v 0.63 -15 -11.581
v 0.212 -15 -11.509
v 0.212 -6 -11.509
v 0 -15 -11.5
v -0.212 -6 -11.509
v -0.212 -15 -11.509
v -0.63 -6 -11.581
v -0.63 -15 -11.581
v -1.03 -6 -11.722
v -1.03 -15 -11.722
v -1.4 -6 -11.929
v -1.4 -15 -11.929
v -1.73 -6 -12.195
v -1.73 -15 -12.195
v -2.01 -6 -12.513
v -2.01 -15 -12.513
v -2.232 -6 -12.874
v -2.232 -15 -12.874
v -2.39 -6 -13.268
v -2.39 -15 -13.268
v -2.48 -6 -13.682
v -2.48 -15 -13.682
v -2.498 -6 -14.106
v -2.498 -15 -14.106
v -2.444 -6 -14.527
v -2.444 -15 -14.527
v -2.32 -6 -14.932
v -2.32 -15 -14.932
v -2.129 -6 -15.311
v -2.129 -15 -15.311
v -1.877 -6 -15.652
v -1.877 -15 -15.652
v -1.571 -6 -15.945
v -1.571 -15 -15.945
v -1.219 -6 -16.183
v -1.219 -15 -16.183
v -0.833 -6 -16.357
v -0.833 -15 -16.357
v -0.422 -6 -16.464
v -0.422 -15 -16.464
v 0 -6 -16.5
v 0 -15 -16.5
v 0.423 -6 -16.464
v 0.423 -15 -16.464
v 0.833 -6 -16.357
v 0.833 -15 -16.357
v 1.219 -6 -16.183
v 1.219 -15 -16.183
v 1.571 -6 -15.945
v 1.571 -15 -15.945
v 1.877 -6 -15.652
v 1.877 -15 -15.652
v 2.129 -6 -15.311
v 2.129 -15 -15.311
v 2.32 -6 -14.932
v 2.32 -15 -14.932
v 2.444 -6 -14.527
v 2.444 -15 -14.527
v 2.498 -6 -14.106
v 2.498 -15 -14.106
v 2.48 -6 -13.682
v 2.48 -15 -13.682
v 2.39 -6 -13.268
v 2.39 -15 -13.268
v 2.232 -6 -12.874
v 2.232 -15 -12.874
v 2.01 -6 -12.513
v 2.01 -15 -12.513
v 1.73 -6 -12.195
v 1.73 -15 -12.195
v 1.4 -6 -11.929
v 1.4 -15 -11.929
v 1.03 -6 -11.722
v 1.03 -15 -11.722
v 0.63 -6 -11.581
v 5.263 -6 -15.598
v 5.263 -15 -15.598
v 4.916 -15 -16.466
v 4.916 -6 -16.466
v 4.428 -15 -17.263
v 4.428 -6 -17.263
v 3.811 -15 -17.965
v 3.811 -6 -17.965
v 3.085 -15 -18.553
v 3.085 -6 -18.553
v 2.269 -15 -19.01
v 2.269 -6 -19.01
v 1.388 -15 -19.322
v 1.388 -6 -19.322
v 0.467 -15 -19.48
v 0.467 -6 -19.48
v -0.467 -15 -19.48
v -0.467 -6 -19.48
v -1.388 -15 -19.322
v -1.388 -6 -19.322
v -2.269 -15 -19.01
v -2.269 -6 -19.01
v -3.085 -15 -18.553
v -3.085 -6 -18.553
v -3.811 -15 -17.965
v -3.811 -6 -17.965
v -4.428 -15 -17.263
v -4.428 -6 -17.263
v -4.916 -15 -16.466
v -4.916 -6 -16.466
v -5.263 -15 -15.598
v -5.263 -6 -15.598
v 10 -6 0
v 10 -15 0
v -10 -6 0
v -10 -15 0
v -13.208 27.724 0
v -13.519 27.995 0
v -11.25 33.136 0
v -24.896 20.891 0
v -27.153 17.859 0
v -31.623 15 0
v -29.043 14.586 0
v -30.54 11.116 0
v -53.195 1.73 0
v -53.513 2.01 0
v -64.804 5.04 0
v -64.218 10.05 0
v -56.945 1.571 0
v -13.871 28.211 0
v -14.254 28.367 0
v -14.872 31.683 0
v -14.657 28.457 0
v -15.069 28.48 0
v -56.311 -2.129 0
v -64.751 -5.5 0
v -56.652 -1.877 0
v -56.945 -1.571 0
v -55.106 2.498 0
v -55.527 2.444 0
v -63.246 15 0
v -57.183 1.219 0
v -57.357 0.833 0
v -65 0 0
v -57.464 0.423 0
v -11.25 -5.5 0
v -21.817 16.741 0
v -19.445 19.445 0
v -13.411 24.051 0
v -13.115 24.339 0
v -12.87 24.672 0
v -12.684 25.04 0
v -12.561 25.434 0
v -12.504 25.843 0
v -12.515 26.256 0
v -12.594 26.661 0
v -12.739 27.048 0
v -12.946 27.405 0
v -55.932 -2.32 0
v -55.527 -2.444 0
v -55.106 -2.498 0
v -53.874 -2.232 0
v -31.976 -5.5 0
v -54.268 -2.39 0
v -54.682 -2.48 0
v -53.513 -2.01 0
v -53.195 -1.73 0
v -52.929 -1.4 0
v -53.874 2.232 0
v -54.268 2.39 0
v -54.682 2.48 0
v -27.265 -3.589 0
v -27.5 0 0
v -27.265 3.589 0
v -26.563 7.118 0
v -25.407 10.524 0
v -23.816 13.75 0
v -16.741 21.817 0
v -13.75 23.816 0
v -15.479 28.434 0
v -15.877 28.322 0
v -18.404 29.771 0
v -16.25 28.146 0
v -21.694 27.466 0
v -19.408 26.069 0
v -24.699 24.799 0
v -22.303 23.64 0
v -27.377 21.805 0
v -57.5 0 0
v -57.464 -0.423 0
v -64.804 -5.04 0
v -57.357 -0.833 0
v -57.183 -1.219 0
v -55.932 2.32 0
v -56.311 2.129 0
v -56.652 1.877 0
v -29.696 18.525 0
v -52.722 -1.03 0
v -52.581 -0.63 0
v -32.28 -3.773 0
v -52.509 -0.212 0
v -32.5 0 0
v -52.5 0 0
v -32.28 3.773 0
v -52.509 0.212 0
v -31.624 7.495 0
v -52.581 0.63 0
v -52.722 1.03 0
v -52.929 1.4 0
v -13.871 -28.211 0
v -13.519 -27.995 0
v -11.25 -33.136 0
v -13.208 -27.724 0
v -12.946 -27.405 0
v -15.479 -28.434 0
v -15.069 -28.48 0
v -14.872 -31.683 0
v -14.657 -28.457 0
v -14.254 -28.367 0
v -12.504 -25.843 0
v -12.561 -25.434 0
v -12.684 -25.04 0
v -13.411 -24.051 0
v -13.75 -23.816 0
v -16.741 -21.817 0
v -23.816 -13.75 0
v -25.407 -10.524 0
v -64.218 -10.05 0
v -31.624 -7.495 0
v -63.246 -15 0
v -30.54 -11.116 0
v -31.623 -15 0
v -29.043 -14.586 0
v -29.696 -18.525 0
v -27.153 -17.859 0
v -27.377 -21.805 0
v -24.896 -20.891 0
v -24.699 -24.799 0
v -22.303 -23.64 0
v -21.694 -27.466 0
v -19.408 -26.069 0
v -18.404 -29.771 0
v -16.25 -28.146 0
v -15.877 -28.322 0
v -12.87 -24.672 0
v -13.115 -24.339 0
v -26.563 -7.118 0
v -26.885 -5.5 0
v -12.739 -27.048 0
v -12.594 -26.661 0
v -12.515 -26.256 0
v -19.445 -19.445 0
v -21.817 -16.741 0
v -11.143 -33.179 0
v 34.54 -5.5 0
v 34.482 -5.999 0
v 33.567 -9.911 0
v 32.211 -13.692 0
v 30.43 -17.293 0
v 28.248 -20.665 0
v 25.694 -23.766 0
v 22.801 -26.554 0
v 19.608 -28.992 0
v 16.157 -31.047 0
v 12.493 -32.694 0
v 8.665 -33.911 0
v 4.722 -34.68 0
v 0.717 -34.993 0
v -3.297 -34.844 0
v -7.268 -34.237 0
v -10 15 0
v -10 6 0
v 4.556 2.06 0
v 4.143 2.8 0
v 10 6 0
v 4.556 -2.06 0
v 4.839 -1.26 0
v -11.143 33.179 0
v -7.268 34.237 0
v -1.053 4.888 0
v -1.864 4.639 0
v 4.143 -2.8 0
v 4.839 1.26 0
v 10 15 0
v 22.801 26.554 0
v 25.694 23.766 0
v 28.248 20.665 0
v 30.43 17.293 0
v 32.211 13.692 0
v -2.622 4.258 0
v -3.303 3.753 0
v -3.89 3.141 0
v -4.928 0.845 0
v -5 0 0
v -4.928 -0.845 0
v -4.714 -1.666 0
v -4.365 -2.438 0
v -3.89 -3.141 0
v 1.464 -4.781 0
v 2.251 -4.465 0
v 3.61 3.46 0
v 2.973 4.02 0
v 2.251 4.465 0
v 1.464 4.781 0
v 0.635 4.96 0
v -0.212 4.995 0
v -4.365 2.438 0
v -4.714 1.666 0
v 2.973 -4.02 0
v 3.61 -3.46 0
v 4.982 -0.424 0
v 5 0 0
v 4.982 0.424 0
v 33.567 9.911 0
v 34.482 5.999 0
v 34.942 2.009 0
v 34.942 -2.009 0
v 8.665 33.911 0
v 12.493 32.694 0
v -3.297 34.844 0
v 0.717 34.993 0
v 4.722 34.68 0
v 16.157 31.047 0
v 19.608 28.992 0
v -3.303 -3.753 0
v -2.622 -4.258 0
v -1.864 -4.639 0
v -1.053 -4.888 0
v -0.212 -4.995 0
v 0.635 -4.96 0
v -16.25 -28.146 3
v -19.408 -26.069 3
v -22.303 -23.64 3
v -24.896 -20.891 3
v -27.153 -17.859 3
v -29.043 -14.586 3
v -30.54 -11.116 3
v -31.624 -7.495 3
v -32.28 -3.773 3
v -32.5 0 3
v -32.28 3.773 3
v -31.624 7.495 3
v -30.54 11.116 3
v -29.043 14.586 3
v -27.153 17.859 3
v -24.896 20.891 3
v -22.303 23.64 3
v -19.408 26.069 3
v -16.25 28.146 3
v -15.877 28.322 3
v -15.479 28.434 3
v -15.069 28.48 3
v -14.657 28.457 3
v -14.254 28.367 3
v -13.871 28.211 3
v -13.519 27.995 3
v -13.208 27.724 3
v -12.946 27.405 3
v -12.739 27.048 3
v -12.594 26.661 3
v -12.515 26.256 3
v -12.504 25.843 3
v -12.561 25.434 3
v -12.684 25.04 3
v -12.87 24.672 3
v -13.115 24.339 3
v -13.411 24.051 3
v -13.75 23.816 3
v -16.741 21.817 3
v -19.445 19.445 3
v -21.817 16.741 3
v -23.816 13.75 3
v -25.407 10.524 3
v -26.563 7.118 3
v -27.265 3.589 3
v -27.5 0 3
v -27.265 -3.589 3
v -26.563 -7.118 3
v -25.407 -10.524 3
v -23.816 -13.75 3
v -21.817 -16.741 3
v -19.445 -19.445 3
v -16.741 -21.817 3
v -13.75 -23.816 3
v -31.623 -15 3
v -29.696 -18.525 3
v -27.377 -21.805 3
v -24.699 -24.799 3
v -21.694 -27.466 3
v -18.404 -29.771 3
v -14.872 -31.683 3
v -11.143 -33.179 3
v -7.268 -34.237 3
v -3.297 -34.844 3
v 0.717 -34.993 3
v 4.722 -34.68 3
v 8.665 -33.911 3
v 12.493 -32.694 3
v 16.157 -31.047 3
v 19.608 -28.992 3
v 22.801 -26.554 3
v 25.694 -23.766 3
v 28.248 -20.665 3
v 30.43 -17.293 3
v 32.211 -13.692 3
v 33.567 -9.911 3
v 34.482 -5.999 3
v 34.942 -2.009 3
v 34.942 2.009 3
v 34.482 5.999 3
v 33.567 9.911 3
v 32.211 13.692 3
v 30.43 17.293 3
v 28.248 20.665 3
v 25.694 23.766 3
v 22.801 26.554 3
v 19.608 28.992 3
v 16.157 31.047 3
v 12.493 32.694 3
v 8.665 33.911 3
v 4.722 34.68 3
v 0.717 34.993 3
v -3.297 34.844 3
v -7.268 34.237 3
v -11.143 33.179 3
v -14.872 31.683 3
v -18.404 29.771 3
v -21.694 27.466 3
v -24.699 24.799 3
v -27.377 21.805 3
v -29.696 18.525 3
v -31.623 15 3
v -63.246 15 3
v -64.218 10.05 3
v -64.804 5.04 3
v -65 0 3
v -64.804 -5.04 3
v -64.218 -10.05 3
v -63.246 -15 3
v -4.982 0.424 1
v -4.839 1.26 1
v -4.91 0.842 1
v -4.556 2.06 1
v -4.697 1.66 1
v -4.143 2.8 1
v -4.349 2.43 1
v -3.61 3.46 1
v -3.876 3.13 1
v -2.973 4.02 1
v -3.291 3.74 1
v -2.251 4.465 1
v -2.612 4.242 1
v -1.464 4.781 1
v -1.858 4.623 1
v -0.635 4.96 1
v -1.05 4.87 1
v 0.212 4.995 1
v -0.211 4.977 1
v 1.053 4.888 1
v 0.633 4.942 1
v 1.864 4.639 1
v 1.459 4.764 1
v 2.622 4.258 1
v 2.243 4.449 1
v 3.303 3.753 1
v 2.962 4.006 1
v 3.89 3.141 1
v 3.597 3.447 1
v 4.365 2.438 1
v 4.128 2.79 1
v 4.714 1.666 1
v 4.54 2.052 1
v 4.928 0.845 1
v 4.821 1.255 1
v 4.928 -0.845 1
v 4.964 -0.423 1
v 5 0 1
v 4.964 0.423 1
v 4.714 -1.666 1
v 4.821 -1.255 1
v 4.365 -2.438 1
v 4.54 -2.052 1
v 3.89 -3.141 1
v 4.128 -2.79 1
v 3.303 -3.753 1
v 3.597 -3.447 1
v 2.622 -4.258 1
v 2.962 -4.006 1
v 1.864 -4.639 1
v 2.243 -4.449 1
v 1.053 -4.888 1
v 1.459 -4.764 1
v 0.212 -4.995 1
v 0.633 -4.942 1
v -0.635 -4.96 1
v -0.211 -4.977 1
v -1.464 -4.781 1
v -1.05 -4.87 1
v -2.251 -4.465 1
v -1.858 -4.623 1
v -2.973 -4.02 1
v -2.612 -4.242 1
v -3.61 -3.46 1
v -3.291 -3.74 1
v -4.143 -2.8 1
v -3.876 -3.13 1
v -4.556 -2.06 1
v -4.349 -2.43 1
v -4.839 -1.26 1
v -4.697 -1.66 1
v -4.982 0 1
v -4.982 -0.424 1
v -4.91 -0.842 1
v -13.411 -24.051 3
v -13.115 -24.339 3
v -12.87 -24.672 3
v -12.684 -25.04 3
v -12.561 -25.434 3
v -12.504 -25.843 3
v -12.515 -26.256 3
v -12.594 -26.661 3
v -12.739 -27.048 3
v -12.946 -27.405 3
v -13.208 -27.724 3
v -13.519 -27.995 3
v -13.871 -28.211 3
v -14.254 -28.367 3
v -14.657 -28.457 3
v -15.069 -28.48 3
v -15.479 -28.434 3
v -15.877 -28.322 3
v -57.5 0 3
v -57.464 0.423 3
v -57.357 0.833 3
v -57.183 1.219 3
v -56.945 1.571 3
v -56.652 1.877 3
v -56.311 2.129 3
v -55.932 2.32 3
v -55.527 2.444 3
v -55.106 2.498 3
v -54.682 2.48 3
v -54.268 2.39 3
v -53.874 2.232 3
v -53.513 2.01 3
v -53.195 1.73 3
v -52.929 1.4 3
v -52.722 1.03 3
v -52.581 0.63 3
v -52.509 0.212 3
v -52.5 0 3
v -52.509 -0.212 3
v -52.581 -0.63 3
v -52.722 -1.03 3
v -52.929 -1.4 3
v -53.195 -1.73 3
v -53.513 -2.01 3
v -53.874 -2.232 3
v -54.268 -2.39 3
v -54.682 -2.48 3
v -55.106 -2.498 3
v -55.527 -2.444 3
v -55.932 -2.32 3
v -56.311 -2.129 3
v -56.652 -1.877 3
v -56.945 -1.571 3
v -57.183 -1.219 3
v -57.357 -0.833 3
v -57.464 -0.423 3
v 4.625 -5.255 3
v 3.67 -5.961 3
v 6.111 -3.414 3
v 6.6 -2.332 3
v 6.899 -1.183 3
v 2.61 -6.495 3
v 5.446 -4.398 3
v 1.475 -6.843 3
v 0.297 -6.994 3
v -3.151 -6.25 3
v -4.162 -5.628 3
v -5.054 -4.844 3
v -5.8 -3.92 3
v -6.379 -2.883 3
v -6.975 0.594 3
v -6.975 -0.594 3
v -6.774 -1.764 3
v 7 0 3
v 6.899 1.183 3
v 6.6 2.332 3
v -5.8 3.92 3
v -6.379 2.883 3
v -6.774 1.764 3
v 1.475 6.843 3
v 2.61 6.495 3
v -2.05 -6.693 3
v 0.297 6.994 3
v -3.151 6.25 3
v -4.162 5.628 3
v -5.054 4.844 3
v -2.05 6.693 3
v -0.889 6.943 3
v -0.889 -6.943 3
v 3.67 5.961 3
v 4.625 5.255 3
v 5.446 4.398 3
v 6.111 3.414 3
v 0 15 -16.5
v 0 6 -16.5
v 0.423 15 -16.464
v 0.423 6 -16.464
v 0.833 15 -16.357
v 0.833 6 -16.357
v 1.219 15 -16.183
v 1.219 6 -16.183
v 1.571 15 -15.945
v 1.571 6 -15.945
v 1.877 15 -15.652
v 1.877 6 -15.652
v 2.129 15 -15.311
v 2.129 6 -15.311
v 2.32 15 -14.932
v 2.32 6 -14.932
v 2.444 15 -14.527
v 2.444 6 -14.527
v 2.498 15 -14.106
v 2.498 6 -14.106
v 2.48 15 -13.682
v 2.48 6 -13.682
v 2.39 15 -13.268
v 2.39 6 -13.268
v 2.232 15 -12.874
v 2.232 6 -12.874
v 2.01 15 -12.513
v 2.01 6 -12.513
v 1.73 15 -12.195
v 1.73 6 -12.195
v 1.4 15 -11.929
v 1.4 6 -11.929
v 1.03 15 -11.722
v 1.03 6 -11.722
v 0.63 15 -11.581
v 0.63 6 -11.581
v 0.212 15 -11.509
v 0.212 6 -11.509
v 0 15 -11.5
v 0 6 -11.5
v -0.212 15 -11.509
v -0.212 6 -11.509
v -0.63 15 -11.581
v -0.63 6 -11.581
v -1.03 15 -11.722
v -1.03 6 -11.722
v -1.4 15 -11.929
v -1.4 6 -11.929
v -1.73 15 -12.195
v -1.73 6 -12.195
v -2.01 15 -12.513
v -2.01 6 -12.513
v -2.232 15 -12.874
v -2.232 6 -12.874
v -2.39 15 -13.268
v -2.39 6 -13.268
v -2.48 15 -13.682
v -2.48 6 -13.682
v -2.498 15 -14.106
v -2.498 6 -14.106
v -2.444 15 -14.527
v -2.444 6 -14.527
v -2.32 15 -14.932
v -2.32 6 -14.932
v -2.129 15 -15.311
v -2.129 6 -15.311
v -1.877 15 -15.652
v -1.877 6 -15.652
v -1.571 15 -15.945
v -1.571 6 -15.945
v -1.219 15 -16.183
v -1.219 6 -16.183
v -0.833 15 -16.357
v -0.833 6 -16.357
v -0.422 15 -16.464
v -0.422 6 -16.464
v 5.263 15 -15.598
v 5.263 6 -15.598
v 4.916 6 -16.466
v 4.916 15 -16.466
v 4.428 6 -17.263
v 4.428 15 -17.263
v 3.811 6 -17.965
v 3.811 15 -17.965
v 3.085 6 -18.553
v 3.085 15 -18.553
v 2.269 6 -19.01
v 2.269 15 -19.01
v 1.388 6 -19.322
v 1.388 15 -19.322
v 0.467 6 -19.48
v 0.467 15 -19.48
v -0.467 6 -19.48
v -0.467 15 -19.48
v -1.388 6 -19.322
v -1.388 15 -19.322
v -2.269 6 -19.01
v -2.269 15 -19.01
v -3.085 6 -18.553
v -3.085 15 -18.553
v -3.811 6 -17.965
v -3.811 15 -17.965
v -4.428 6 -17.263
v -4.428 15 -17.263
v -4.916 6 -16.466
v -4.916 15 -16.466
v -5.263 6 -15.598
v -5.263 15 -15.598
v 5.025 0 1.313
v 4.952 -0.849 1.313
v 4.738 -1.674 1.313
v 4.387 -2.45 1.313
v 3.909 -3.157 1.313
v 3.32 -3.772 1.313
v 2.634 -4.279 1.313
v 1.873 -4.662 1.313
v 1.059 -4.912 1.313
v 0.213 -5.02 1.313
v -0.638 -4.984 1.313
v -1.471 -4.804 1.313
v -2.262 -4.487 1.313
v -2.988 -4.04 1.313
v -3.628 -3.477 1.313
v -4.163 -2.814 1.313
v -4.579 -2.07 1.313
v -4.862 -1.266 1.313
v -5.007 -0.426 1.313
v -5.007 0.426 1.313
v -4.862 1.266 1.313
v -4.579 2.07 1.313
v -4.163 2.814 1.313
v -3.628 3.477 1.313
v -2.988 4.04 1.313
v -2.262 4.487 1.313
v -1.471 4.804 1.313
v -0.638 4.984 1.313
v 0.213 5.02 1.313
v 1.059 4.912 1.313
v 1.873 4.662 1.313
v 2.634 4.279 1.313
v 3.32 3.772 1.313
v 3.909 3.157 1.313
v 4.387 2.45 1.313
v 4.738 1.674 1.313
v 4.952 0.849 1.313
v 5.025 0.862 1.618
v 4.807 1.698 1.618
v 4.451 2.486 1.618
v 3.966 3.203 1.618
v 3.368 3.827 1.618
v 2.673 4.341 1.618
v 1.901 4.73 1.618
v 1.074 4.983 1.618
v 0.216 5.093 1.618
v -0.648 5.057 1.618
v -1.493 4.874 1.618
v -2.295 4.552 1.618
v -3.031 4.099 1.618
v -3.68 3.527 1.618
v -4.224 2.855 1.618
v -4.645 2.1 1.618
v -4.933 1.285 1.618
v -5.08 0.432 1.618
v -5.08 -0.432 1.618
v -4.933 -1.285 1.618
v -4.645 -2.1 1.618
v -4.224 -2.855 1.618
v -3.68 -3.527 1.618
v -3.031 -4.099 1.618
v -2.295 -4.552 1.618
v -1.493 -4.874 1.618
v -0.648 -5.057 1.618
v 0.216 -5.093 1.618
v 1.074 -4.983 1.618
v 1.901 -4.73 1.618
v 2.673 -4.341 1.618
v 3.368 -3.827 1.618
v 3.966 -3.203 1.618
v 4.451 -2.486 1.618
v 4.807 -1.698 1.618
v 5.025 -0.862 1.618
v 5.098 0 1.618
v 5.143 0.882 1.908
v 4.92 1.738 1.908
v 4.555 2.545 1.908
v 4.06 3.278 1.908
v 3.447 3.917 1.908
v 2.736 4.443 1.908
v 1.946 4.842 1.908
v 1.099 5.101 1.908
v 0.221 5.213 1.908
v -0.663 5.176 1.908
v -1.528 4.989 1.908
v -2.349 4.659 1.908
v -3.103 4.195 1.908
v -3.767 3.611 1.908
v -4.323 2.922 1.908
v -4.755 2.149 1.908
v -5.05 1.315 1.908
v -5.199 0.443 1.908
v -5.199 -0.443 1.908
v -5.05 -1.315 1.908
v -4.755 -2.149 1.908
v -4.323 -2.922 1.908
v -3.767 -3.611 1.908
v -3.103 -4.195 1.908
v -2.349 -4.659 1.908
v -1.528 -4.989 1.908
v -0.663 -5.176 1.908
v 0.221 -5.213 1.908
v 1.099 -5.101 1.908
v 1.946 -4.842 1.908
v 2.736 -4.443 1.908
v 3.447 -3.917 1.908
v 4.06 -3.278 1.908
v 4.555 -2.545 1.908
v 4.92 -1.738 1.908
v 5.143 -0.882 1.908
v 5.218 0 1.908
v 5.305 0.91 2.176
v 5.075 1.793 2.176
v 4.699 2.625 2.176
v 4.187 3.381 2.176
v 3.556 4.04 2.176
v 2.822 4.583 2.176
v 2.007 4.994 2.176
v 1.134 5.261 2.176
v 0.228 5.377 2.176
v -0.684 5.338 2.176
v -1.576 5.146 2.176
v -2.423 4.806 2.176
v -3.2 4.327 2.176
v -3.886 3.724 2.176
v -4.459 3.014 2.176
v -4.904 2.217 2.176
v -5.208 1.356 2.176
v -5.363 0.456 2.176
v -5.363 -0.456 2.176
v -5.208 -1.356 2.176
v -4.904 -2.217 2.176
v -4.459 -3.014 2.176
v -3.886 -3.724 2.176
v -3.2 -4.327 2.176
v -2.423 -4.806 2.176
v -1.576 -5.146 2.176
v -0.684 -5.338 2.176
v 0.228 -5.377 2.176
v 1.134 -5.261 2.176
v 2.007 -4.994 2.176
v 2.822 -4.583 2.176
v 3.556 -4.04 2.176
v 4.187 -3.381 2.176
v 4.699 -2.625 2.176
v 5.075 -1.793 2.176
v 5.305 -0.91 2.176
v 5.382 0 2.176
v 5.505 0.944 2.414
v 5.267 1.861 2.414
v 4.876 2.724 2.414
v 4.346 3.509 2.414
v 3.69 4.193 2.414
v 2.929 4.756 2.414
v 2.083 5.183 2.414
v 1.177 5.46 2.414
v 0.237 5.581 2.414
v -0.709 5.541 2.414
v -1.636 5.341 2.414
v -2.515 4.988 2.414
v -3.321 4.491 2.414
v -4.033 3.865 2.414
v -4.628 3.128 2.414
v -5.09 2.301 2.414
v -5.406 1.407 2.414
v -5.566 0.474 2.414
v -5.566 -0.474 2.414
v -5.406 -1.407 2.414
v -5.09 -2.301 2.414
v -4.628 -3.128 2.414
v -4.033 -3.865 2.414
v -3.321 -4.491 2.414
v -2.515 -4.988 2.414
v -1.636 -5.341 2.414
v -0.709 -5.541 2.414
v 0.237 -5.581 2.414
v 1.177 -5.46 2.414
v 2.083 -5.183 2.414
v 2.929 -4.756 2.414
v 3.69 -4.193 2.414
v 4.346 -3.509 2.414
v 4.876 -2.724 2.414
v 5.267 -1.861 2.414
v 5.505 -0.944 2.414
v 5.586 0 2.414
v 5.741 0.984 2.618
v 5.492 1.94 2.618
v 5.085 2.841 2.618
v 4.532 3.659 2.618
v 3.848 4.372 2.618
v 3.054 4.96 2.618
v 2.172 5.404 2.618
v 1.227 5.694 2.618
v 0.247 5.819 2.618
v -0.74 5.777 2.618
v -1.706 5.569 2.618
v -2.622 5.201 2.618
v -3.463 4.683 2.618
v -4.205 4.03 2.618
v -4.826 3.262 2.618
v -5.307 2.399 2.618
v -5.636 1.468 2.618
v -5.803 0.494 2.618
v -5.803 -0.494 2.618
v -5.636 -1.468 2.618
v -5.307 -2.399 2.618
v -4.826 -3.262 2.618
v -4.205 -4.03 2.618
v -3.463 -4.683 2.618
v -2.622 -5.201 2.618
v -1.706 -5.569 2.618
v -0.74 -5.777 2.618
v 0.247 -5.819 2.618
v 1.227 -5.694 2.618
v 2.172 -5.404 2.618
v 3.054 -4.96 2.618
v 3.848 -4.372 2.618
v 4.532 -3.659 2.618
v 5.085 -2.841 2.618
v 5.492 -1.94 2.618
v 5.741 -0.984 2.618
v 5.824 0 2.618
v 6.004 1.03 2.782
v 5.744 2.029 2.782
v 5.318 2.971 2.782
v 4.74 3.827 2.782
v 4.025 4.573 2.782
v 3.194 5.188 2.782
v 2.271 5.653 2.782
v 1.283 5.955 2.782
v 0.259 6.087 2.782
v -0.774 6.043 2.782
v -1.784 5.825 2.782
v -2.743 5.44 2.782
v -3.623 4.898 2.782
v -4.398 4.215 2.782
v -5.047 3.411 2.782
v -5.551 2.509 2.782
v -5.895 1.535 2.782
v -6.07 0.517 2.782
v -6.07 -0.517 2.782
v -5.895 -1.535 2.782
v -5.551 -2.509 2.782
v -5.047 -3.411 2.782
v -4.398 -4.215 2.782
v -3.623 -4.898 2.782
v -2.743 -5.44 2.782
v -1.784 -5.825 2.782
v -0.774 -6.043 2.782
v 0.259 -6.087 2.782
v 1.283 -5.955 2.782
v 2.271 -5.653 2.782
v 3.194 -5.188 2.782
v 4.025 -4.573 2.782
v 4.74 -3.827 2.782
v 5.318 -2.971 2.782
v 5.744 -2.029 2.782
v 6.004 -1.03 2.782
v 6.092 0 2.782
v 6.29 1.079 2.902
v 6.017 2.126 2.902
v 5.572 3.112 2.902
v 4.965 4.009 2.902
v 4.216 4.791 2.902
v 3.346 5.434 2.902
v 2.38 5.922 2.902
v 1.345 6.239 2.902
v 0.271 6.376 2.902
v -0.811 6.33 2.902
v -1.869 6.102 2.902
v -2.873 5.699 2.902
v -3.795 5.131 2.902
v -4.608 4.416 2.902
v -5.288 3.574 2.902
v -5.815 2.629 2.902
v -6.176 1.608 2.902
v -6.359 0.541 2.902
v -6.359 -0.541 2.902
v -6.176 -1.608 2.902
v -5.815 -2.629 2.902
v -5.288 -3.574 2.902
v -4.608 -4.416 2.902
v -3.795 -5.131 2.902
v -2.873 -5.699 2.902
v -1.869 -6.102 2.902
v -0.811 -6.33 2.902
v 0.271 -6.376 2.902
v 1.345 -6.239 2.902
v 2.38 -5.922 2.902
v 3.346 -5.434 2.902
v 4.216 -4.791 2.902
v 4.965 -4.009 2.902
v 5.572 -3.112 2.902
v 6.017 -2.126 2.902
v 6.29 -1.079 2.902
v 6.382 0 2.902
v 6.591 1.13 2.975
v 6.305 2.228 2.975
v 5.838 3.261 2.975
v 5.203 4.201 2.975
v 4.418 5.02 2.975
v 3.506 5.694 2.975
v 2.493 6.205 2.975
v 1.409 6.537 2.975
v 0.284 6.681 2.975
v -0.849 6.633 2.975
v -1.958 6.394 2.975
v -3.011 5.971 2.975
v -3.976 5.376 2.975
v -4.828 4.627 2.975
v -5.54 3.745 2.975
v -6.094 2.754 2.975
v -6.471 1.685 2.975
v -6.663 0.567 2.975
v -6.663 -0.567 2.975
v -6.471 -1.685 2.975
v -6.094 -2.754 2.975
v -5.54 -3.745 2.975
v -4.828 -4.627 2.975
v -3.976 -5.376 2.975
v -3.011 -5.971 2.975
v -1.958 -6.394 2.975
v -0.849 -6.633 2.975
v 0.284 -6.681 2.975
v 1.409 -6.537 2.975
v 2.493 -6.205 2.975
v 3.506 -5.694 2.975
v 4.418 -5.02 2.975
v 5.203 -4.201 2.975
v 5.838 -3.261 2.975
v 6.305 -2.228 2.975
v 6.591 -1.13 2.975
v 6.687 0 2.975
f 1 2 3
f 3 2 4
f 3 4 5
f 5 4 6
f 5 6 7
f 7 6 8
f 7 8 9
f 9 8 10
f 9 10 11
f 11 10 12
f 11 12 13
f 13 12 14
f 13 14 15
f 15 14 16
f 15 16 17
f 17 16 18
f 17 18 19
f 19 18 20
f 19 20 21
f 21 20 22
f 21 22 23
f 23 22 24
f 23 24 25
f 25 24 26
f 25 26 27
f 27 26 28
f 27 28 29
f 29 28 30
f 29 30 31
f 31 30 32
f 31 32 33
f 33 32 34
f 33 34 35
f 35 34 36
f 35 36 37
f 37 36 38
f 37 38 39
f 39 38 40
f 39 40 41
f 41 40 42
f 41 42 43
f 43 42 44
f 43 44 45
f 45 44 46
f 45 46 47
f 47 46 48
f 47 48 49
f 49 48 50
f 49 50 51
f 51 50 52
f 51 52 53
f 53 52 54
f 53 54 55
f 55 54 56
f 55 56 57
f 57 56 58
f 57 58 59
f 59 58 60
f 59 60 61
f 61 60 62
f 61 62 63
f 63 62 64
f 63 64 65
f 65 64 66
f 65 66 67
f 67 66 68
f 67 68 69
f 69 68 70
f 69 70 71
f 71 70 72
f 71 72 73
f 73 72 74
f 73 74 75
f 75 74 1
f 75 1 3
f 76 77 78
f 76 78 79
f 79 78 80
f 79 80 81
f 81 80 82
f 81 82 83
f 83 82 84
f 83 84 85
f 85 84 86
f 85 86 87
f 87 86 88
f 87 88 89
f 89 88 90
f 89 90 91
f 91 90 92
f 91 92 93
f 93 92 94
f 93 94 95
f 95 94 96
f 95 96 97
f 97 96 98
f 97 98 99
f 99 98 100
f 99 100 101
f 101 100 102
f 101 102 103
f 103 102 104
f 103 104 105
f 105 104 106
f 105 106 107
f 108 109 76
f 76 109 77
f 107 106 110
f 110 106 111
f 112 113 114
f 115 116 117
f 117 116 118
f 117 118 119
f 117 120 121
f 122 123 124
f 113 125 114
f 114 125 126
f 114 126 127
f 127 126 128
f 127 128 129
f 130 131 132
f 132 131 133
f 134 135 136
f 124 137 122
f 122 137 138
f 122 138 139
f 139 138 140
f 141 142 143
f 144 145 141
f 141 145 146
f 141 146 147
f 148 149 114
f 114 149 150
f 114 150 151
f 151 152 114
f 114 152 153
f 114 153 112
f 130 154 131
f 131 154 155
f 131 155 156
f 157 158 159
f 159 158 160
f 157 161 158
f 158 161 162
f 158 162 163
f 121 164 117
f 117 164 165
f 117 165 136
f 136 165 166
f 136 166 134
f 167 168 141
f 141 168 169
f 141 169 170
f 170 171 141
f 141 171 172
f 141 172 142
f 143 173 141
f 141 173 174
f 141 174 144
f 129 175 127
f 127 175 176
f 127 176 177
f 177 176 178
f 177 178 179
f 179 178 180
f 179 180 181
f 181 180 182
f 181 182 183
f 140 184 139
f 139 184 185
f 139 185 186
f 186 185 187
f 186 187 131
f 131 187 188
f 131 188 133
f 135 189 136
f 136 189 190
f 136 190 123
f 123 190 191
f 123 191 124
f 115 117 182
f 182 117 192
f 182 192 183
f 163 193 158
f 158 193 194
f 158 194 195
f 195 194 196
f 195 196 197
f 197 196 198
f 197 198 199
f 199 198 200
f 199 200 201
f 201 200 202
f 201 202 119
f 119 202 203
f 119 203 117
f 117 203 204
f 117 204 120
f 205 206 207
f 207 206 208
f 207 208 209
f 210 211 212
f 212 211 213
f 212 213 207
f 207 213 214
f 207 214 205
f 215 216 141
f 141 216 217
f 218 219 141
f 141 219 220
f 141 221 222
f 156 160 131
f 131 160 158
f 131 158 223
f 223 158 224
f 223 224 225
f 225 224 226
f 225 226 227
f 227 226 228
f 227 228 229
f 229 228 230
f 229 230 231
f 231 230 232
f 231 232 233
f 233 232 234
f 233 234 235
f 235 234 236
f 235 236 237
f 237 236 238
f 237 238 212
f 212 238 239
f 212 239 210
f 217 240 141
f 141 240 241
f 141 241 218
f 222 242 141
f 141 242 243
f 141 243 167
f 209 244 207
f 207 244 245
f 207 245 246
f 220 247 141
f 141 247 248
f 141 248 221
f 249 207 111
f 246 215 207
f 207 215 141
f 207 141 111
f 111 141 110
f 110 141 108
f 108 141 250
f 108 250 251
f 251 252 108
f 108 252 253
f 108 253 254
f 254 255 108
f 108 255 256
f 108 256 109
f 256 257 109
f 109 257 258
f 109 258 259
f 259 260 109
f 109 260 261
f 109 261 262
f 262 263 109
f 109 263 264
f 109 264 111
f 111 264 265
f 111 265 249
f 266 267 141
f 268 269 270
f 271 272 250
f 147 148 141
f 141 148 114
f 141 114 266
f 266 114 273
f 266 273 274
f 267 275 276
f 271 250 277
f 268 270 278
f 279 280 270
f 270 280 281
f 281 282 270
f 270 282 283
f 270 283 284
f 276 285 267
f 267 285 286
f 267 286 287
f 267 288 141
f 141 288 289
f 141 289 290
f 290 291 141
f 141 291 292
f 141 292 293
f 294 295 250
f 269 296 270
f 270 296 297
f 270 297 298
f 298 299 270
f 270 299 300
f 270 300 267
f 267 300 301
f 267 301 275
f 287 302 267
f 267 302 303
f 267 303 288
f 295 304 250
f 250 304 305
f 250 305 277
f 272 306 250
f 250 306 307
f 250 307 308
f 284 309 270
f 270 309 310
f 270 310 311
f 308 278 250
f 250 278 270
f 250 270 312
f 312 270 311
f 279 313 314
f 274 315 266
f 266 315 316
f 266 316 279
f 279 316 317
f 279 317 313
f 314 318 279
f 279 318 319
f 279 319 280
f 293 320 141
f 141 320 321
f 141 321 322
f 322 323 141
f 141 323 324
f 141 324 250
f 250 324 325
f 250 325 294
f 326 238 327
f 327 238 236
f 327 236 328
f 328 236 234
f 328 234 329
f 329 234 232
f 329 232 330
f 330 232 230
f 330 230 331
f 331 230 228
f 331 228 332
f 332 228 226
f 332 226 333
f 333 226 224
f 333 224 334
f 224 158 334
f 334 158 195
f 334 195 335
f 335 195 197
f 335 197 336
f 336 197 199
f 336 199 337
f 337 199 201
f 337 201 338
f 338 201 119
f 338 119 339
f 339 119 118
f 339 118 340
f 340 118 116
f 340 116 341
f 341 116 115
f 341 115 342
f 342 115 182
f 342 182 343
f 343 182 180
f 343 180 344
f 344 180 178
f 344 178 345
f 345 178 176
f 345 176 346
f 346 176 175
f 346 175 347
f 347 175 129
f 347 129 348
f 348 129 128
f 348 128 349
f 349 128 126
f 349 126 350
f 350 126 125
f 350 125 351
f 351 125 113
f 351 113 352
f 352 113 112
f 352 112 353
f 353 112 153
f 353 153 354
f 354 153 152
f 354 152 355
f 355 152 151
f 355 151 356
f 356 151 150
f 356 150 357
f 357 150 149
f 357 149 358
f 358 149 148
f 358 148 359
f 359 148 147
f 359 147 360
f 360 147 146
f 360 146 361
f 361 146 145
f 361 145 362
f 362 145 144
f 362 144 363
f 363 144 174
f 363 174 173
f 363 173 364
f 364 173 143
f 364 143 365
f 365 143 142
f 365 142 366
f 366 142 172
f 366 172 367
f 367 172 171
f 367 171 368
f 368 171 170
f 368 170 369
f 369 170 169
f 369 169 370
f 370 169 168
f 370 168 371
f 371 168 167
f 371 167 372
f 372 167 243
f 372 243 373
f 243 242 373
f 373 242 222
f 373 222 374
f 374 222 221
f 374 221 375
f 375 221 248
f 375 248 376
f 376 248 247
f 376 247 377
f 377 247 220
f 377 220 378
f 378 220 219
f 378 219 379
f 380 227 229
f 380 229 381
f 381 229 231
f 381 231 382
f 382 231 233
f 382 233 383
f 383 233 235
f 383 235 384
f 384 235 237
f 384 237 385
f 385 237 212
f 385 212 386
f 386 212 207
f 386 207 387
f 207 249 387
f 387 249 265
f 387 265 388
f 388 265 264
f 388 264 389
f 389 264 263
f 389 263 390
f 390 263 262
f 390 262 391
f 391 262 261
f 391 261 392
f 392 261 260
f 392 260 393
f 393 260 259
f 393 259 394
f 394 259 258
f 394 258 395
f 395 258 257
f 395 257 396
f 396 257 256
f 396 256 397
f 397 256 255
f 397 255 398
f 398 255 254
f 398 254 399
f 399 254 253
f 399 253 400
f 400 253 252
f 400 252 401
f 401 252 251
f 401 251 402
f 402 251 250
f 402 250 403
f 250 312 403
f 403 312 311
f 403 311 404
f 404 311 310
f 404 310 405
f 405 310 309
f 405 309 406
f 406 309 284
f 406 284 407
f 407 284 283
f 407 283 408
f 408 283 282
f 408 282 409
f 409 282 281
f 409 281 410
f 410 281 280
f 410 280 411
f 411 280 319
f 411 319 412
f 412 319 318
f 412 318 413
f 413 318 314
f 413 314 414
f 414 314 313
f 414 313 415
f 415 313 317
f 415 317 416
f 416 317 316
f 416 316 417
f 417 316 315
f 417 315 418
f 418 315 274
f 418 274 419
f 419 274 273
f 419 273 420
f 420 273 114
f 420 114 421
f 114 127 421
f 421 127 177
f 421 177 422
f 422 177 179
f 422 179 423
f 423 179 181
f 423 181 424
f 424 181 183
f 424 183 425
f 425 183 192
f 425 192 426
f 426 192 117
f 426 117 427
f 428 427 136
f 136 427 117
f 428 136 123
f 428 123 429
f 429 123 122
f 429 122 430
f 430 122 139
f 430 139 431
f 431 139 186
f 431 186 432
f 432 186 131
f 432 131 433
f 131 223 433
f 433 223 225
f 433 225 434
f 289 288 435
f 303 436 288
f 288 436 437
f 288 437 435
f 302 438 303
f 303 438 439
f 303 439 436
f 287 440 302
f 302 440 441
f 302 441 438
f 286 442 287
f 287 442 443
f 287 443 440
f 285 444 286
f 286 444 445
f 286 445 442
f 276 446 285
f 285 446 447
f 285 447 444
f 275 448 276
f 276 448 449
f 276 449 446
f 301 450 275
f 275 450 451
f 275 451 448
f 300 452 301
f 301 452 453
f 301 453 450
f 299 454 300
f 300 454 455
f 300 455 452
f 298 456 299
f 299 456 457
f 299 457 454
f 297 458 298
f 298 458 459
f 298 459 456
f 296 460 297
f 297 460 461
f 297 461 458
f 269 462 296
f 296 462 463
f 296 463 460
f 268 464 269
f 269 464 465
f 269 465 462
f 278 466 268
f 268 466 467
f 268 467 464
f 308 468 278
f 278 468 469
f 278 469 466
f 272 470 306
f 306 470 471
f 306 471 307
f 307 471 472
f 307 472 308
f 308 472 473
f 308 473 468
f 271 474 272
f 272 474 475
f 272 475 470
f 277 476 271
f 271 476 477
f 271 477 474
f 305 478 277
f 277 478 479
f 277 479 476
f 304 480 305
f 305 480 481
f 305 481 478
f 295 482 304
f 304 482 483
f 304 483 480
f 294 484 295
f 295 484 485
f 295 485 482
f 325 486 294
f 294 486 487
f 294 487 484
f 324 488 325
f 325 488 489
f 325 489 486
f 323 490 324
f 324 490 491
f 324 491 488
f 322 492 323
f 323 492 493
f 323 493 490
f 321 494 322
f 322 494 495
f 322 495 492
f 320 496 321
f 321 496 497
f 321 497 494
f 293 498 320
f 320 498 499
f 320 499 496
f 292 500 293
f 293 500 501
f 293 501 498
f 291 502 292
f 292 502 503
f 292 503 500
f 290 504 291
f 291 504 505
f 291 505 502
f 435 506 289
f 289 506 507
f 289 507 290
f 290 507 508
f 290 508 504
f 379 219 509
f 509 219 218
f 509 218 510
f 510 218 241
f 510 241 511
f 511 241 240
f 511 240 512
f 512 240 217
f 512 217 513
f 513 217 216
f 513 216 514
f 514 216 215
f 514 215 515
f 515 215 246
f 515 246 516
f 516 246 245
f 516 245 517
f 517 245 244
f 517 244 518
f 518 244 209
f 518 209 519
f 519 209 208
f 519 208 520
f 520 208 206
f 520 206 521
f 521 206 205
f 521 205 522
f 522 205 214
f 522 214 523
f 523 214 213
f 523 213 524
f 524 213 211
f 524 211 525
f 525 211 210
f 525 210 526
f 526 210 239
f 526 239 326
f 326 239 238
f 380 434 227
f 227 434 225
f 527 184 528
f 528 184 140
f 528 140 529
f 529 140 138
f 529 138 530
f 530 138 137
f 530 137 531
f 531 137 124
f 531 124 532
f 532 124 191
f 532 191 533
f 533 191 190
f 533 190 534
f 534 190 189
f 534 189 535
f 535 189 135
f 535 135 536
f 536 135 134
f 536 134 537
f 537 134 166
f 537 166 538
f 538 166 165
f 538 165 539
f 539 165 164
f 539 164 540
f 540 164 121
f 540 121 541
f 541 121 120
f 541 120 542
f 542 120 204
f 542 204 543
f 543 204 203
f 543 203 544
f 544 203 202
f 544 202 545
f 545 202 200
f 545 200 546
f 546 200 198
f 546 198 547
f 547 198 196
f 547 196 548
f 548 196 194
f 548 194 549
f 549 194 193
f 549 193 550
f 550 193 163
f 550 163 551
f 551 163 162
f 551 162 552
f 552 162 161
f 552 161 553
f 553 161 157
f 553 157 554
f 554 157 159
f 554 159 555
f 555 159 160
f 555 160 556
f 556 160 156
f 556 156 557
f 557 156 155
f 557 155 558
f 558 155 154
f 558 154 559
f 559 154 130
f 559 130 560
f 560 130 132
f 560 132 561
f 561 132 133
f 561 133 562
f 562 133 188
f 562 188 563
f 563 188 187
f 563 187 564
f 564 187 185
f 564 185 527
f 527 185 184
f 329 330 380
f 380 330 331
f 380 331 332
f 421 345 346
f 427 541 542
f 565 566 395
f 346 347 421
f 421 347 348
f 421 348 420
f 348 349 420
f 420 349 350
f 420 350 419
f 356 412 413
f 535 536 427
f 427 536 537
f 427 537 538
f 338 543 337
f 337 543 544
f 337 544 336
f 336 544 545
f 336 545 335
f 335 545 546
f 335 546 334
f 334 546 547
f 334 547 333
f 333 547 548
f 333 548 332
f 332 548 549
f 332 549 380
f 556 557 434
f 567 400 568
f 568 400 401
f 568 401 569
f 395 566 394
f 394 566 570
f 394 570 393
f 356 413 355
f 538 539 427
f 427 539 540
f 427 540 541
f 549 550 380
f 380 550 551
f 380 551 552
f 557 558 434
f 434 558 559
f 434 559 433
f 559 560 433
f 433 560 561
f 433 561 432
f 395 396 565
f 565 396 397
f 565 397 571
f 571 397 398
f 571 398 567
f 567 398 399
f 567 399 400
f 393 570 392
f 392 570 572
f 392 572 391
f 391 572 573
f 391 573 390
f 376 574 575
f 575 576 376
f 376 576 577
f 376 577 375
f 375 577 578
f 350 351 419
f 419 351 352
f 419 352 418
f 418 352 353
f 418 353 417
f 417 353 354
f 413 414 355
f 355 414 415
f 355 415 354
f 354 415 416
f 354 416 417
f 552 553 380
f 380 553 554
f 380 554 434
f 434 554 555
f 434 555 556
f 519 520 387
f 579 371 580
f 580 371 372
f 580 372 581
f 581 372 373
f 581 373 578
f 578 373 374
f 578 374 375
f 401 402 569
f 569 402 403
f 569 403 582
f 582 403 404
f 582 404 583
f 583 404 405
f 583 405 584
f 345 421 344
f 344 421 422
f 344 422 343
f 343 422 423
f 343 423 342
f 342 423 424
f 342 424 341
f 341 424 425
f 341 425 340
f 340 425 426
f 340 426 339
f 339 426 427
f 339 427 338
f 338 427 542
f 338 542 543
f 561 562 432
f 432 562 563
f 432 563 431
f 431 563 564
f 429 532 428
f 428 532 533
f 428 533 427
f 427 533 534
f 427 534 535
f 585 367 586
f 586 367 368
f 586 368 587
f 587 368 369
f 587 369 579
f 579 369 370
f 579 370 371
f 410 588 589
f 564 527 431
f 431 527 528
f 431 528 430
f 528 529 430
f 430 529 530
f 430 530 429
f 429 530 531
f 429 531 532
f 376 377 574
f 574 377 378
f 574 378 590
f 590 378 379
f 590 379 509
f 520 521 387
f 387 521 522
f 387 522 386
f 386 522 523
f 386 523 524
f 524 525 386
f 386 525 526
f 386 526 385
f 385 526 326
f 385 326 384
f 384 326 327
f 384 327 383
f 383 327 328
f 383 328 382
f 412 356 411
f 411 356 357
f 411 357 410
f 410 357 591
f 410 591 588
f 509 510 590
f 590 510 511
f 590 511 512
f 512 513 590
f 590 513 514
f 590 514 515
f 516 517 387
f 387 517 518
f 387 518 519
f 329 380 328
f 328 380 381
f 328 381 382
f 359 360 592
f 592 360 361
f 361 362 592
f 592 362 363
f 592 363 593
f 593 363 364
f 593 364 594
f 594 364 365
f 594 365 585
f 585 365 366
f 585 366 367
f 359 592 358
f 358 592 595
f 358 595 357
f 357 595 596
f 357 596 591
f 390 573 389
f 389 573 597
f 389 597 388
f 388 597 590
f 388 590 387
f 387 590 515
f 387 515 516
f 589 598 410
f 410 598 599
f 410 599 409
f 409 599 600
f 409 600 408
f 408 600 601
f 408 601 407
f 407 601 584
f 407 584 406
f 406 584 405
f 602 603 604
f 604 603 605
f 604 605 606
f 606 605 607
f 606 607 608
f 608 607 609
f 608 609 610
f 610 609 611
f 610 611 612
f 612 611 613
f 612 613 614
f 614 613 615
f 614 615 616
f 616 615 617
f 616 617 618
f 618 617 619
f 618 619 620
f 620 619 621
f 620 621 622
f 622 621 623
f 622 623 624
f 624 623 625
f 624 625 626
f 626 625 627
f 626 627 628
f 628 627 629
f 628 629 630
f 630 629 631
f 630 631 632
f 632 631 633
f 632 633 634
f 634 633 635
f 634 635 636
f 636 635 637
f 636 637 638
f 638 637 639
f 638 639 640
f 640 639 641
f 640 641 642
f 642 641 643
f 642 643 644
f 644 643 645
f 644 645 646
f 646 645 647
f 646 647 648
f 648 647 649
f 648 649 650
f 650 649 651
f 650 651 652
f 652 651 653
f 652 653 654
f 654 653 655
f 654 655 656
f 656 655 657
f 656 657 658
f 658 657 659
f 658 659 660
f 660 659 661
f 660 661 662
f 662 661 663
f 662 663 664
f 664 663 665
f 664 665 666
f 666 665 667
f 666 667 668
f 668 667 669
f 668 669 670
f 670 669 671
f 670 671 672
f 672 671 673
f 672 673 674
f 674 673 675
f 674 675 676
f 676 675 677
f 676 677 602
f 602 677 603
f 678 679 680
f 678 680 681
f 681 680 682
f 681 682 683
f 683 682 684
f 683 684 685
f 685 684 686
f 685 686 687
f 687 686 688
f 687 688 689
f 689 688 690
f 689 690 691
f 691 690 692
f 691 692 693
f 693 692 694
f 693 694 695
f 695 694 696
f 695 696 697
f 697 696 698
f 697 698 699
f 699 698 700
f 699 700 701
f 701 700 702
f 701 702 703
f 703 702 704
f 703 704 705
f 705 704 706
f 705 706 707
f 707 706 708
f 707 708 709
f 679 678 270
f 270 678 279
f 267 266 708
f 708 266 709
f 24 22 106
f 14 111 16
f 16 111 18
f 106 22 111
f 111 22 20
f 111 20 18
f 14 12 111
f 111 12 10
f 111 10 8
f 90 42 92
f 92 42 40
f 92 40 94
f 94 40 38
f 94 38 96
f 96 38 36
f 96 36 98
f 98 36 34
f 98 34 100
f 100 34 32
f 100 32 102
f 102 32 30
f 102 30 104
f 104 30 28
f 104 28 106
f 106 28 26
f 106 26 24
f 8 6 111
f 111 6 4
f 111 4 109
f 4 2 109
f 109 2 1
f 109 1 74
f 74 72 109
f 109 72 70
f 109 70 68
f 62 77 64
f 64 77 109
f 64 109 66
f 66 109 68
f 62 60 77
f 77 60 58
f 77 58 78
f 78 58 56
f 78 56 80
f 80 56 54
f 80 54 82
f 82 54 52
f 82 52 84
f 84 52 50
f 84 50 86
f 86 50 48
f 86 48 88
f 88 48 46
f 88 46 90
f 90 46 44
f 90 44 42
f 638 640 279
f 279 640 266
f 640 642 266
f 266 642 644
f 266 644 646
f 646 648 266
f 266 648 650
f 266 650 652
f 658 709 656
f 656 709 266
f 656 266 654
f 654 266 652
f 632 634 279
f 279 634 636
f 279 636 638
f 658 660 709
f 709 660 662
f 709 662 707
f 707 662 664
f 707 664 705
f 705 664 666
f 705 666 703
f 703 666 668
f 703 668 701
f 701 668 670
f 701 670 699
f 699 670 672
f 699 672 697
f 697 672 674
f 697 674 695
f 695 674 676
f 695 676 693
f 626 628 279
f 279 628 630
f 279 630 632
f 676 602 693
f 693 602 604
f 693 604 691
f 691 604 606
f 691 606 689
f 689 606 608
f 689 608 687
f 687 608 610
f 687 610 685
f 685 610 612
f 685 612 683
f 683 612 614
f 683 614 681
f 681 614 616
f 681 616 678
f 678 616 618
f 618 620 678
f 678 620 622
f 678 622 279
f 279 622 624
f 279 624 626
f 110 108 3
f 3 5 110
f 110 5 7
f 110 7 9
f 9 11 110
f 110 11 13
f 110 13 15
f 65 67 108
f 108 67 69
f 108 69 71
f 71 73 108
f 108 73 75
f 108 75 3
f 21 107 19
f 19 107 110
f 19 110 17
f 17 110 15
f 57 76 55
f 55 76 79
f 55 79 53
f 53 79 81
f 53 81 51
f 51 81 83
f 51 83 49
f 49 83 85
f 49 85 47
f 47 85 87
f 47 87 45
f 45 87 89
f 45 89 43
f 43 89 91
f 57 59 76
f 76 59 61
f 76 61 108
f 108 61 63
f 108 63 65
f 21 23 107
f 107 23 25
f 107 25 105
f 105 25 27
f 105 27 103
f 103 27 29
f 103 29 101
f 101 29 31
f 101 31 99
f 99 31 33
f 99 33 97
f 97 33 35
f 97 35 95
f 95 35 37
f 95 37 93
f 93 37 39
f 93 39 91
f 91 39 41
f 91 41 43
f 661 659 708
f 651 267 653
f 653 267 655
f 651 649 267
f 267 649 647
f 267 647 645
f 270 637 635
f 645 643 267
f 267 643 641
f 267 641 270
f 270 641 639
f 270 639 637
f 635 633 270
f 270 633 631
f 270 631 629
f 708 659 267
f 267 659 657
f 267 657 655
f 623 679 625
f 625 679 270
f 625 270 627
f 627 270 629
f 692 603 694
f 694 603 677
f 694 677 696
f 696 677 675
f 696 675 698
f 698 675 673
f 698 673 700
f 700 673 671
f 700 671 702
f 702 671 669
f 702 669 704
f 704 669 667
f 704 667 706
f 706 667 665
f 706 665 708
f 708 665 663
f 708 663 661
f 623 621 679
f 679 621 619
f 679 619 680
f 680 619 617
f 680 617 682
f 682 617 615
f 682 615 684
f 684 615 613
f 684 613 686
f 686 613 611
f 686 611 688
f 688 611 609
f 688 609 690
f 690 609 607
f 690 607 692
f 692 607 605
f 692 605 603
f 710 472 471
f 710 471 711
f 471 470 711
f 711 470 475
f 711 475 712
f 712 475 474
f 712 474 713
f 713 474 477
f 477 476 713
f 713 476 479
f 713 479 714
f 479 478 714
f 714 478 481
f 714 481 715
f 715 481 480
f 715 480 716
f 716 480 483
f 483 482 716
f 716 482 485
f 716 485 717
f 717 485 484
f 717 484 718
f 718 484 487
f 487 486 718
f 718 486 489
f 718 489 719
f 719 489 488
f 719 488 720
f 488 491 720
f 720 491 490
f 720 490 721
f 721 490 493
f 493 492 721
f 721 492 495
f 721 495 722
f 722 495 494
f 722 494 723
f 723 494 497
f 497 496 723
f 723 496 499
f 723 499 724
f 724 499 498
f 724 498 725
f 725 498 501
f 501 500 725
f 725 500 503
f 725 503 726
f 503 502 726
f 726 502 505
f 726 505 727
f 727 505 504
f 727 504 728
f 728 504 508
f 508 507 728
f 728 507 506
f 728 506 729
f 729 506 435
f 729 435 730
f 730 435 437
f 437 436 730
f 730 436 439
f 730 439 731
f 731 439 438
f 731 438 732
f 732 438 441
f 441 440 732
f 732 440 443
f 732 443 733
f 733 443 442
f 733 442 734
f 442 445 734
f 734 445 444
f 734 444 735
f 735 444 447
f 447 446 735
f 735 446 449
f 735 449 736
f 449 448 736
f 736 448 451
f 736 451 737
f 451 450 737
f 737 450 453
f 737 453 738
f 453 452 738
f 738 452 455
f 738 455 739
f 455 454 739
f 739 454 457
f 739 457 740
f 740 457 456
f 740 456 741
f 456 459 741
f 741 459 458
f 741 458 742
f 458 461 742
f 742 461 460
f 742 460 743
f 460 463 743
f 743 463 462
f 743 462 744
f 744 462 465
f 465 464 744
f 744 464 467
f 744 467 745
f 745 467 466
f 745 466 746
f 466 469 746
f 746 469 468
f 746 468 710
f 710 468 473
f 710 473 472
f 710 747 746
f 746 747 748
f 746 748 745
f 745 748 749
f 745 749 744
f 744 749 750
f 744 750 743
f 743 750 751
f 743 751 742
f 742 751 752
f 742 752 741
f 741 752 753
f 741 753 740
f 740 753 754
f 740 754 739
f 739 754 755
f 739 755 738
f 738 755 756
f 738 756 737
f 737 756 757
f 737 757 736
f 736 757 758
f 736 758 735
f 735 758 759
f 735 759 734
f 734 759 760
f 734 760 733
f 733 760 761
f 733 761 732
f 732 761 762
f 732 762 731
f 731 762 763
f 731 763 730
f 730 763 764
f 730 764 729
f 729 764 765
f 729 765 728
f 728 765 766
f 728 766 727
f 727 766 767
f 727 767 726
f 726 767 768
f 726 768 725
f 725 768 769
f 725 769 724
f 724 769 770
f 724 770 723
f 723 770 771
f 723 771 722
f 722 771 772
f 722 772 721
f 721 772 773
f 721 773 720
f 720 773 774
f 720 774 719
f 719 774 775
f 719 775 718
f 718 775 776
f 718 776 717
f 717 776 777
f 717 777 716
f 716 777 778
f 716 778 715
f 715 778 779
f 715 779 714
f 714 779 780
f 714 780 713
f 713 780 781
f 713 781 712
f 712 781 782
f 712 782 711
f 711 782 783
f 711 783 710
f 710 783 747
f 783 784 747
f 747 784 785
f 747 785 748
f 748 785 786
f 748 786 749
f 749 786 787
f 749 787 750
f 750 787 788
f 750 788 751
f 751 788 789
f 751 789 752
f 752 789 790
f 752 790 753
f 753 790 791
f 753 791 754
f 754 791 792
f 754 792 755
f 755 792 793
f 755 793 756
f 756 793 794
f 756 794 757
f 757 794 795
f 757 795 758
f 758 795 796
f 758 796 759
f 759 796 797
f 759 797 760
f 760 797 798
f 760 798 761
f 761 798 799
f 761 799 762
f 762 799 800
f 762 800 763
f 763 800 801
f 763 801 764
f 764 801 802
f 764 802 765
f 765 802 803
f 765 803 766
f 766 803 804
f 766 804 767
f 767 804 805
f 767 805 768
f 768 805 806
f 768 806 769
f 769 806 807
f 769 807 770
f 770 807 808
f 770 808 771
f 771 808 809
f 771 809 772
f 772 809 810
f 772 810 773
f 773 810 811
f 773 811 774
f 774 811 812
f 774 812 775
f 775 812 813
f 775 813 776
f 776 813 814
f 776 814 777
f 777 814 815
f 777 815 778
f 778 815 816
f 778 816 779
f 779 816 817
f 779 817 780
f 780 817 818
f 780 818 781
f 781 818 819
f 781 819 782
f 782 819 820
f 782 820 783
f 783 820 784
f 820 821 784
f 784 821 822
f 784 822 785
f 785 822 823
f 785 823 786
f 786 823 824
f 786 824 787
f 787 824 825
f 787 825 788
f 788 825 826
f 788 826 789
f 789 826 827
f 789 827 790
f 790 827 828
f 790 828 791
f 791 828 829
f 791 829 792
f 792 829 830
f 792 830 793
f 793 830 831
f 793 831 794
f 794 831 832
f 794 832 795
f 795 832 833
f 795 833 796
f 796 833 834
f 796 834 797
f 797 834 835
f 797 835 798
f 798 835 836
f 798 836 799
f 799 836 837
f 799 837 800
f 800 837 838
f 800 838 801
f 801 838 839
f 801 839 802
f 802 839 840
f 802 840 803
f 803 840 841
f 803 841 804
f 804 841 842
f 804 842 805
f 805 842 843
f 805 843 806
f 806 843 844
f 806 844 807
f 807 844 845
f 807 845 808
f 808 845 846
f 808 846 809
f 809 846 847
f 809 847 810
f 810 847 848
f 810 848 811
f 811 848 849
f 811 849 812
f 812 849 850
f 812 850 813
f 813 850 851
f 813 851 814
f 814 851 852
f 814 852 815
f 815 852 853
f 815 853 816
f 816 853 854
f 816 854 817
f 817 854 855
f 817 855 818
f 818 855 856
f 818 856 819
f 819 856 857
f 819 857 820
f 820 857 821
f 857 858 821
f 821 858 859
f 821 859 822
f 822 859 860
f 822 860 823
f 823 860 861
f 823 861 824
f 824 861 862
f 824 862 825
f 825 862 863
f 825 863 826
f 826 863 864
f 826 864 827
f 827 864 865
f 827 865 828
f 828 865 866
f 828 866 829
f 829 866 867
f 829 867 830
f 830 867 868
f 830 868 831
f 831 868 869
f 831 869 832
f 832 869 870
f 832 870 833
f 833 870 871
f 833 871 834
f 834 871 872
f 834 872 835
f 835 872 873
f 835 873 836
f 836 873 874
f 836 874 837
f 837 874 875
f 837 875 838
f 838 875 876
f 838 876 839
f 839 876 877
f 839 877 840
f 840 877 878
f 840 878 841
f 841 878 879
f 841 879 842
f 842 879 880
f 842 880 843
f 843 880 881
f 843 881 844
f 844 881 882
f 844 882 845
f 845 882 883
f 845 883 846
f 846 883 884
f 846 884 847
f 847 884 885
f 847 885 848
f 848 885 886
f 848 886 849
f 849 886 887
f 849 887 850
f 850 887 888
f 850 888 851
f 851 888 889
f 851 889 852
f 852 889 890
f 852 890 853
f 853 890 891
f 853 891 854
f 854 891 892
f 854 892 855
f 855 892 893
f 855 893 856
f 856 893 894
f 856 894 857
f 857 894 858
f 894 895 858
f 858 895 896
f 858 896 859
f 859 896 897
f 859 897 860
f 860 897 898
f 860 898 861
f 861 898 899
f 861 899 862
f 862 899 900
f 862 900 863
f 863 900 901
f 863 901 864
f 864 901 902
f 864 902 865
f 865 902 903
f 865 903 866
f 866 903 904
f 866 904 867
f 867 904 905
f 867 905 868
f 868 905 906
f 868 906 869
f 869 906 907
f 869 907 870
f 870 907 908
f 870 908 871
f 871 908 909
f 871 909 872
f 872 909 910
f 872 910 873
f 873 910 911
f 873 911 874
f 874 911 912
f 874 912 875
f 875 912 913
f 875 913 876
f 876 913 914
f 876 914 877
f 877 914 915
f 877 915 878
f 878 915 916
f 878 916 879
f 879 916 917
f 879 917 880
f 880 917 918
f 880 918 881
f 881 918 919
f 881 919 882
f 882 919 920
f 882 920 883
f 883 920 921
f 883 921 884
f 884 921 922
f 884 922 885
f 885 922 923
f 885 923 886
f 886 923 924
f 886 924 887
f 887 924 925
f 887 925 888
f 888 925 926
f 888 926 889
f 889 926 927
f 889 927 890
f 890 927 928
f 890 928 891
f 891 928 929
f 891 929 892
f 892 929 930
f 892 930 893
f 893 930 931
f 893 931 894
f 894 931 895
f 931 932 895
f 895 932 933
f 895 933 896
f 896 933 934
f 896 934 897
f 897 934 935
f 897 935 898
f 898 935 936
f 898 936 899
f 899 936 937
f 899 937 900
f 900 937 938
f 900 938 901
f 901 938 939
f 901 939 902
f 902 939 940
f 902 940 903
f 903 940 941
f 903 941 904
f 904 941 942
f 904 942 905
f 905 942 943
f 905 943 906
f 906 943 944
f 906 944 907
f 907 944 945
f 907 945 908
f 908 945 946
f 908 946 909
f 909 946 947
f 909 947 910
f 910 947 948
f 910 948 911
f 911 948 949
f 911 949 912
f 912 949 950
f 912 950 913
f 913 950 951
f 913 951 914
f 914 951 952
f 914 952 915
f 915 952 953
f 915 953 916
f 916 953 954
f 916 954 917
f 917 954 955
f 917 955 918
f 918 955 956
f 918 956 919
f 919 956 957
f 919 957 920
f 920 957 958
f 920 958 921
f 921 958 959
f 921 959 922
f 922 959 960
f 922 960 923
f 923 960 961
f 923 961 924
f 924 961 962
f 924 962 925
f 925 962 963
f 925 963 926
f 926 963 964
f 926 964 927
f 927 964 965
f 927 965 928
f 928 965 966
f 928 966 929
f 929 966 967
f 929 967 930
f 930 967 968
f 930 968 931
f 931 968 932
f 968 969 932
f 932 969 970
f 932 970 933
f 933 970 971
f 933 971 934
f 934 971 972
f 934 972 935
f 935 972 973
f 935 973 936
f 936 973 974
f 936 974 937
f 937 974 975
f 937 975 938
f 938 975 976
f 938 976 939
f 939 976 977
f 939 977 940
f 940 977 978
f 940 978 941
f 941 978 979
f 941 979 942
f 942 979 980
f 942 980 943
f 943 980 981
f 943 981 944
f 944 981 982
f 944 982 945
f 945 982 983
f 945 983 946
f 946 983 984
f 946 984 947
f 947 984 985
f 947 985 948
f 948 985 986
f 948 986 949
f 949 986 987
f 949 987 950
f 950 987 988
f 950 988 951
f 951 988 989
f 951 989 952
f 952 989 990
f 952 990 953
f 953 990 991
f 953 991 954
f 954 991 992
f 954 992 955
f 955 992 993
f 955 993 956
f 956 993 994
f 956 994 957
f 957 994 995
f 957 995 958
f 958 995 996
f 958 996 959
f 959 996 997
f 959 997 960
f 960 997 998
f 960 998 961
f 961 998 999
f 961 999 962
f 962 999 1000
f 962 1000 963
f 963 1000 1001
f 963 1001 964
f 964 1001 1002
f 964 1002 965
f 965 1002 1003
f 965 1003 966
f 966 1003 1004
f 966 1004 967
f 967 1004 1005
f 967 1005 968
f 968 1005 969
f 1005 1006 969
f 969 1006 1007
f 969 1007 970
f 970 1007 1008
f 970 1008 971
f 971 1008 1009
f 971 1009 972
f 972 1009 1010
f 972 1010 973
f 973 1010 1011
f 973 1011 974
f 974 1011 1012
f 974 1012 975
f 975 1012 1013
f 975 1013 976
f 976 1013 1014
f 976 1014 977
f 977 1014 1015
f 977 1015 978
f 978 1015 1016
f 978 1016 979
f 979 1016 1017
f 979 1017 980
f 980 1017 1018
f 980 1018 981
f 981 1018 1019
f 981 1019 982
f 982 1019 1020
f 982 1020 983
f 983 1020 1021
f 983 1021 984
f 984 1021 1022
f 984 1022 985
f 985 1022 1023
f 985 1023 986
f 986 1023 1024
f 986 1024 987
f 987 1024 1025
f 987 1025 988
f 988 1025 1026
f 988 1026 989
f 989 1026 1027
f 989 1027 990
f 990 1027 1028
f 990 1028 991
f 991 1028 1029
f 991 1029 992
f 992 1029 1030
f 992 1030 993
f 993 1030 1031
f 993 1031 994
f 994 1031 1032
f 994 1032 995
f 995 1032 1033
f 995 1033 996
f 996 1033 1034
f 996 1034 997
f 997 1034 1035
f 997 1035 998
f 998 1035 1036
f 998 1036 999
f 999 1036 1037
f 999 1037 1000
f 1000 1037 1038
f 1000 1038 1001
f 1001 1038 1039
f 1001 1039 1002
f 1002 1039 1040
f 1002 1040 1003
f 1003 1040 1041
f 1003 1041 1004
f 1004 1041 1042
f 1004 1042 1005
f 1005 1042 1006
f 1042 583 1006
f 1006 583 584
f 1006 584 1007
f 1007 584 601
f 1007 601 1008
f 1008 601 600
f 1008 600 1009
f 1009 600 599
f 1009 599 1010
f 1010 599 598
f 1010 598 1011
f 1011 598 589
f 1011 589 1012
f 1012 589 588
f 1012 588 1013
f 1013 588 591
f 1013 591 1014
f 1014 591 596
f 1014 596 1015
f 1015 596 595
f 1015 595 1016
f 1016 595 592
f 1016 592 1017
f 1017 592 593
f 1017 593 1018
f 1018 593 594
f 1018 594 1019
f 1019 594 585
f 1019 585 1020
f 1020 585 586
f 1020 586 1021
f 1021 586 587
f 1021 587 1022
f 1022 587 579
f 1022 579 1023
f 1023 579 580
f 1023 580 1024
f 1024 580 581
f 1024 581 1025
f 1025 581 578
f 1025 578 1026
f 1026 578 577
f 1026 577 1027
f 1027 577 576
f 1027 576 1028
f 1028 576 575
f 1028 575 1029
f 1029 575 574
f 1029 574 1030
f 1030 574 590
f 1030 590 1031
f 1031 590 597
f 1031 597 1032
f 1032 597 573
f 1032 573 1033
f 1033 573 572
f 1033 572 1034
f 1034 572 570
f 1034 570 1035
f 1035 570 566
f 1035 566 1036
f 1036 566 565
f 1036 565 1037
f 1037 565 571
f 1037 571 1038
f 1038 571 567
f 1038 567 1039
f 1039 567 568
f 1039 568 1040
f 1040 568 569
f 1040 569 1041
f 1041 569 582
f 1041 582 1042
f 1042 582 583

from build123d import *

# Parameters (mm, degrees)
SKETCH_1_R          = 5
SKETCH_1_R_2        = 2.5
EXTRUDE_1_DEPTH     = 3
SKETCH_3_R          = 2.5
EXTRUDE_2_DEPTH     = 15
SKETCH_4_W          = 25
SKETCH_4_H          = 12
CUT_EXTRUDE_1_DEPTH = 10
FILLET_1_R          = 2


with BuildPart() as part:
    # 스케치1 → 보스-돌출1 (new body)
    with BuildSketch(Plane.XY):
        with BuildLine():
            ThreePointArc((-31.622776602, -15), (35, 0), (-31.622776602, 15))
            Line((-31.622776602, 15), (-63.245553203, 15))
            ThreePointArc((-63.245553203, 15), (-65, 0), (-63.245553203, -15))
            Line((-63.245553203, -15), (-31.622776602, -15))
        make_face()
        with BuildLine():
            ThreePointArc((-13.750000001, -23.815698604), (-12.834936371, -27.230761907), (-16.249999587, -28.145825861))
            ThreePointArc((-16.249999587, -28.145825861), (-32.5, -2.35e-07), (-16.249999995, 28.145825626))
            ThreePointArc((-16.249999995, 28.145825626), (-12.834936369, 27.230761903), (-13.750000416, 23.815698364))
            ThreePointArc((-13.750000416, 23.815698364), (-27.5, -2.4e-07), (-13.750000001, -23.815698604))
        make_face(mode=Mode.SUBTRACT)
        Circle(SKETCH_1_R, mode=Mode.SUBTRACT)
        with Locations((-55, 0)):
            Circle(SKETCH_1_R_2, mode=Mode.SUBTRACT)
    extrude(amount=EXTRUDE_1_DEPTH)

    # 스케치3 → 보스-돌출2 (add, symmetric)
    with BuildSketch(Plane(origin=(0, 0, 0), x_dir=(1, 0, 0), z_dir=(0, 1, 0))):
        with BuildLine():
            Line((-10, 0), (10, 0))
            Line((10, 0), (5.262640911, 15.598314937))
            ThreePointArc((5.262640911, 15.598314937), (0, 19.5), (-5.262640911, 15.598314937))
            Line((-5.262640911, 15.598314937), (-10, 0))
        make_face()
        with Locations(Location((0, 14, 0), (0, 0, 270))):
            Circle(SKETCH_3_R, mode=Mode.SUBTRACT)
    extrude(amount=EXTRUDE_2_DEPTH, both=True)

    # 스케치4 → 컷-돌출1 (cut, symmetric)
    with BuildSketch(Plane(origin=(0, 0, 0), x_dir=(0, 0, -1), z_dir=(1, 0, 0))):
        with Locations((12.5, 0)):
            Rectangle(SKETCH_4_W, SKETCH_4_H)
    extrude(amount=CUT_EXTRUDE_1_DEPTH, both=True, mode=Mode.SUBTRACT)

    # 필렛1
    fillet_1_edges = [part.edges().sort_by_distance(p)[0] for p in [
        (-5, 0, 3),
    ]]
    fillet(fillet_1_edges, radius=FILLET_1_R)


solid = part.part
